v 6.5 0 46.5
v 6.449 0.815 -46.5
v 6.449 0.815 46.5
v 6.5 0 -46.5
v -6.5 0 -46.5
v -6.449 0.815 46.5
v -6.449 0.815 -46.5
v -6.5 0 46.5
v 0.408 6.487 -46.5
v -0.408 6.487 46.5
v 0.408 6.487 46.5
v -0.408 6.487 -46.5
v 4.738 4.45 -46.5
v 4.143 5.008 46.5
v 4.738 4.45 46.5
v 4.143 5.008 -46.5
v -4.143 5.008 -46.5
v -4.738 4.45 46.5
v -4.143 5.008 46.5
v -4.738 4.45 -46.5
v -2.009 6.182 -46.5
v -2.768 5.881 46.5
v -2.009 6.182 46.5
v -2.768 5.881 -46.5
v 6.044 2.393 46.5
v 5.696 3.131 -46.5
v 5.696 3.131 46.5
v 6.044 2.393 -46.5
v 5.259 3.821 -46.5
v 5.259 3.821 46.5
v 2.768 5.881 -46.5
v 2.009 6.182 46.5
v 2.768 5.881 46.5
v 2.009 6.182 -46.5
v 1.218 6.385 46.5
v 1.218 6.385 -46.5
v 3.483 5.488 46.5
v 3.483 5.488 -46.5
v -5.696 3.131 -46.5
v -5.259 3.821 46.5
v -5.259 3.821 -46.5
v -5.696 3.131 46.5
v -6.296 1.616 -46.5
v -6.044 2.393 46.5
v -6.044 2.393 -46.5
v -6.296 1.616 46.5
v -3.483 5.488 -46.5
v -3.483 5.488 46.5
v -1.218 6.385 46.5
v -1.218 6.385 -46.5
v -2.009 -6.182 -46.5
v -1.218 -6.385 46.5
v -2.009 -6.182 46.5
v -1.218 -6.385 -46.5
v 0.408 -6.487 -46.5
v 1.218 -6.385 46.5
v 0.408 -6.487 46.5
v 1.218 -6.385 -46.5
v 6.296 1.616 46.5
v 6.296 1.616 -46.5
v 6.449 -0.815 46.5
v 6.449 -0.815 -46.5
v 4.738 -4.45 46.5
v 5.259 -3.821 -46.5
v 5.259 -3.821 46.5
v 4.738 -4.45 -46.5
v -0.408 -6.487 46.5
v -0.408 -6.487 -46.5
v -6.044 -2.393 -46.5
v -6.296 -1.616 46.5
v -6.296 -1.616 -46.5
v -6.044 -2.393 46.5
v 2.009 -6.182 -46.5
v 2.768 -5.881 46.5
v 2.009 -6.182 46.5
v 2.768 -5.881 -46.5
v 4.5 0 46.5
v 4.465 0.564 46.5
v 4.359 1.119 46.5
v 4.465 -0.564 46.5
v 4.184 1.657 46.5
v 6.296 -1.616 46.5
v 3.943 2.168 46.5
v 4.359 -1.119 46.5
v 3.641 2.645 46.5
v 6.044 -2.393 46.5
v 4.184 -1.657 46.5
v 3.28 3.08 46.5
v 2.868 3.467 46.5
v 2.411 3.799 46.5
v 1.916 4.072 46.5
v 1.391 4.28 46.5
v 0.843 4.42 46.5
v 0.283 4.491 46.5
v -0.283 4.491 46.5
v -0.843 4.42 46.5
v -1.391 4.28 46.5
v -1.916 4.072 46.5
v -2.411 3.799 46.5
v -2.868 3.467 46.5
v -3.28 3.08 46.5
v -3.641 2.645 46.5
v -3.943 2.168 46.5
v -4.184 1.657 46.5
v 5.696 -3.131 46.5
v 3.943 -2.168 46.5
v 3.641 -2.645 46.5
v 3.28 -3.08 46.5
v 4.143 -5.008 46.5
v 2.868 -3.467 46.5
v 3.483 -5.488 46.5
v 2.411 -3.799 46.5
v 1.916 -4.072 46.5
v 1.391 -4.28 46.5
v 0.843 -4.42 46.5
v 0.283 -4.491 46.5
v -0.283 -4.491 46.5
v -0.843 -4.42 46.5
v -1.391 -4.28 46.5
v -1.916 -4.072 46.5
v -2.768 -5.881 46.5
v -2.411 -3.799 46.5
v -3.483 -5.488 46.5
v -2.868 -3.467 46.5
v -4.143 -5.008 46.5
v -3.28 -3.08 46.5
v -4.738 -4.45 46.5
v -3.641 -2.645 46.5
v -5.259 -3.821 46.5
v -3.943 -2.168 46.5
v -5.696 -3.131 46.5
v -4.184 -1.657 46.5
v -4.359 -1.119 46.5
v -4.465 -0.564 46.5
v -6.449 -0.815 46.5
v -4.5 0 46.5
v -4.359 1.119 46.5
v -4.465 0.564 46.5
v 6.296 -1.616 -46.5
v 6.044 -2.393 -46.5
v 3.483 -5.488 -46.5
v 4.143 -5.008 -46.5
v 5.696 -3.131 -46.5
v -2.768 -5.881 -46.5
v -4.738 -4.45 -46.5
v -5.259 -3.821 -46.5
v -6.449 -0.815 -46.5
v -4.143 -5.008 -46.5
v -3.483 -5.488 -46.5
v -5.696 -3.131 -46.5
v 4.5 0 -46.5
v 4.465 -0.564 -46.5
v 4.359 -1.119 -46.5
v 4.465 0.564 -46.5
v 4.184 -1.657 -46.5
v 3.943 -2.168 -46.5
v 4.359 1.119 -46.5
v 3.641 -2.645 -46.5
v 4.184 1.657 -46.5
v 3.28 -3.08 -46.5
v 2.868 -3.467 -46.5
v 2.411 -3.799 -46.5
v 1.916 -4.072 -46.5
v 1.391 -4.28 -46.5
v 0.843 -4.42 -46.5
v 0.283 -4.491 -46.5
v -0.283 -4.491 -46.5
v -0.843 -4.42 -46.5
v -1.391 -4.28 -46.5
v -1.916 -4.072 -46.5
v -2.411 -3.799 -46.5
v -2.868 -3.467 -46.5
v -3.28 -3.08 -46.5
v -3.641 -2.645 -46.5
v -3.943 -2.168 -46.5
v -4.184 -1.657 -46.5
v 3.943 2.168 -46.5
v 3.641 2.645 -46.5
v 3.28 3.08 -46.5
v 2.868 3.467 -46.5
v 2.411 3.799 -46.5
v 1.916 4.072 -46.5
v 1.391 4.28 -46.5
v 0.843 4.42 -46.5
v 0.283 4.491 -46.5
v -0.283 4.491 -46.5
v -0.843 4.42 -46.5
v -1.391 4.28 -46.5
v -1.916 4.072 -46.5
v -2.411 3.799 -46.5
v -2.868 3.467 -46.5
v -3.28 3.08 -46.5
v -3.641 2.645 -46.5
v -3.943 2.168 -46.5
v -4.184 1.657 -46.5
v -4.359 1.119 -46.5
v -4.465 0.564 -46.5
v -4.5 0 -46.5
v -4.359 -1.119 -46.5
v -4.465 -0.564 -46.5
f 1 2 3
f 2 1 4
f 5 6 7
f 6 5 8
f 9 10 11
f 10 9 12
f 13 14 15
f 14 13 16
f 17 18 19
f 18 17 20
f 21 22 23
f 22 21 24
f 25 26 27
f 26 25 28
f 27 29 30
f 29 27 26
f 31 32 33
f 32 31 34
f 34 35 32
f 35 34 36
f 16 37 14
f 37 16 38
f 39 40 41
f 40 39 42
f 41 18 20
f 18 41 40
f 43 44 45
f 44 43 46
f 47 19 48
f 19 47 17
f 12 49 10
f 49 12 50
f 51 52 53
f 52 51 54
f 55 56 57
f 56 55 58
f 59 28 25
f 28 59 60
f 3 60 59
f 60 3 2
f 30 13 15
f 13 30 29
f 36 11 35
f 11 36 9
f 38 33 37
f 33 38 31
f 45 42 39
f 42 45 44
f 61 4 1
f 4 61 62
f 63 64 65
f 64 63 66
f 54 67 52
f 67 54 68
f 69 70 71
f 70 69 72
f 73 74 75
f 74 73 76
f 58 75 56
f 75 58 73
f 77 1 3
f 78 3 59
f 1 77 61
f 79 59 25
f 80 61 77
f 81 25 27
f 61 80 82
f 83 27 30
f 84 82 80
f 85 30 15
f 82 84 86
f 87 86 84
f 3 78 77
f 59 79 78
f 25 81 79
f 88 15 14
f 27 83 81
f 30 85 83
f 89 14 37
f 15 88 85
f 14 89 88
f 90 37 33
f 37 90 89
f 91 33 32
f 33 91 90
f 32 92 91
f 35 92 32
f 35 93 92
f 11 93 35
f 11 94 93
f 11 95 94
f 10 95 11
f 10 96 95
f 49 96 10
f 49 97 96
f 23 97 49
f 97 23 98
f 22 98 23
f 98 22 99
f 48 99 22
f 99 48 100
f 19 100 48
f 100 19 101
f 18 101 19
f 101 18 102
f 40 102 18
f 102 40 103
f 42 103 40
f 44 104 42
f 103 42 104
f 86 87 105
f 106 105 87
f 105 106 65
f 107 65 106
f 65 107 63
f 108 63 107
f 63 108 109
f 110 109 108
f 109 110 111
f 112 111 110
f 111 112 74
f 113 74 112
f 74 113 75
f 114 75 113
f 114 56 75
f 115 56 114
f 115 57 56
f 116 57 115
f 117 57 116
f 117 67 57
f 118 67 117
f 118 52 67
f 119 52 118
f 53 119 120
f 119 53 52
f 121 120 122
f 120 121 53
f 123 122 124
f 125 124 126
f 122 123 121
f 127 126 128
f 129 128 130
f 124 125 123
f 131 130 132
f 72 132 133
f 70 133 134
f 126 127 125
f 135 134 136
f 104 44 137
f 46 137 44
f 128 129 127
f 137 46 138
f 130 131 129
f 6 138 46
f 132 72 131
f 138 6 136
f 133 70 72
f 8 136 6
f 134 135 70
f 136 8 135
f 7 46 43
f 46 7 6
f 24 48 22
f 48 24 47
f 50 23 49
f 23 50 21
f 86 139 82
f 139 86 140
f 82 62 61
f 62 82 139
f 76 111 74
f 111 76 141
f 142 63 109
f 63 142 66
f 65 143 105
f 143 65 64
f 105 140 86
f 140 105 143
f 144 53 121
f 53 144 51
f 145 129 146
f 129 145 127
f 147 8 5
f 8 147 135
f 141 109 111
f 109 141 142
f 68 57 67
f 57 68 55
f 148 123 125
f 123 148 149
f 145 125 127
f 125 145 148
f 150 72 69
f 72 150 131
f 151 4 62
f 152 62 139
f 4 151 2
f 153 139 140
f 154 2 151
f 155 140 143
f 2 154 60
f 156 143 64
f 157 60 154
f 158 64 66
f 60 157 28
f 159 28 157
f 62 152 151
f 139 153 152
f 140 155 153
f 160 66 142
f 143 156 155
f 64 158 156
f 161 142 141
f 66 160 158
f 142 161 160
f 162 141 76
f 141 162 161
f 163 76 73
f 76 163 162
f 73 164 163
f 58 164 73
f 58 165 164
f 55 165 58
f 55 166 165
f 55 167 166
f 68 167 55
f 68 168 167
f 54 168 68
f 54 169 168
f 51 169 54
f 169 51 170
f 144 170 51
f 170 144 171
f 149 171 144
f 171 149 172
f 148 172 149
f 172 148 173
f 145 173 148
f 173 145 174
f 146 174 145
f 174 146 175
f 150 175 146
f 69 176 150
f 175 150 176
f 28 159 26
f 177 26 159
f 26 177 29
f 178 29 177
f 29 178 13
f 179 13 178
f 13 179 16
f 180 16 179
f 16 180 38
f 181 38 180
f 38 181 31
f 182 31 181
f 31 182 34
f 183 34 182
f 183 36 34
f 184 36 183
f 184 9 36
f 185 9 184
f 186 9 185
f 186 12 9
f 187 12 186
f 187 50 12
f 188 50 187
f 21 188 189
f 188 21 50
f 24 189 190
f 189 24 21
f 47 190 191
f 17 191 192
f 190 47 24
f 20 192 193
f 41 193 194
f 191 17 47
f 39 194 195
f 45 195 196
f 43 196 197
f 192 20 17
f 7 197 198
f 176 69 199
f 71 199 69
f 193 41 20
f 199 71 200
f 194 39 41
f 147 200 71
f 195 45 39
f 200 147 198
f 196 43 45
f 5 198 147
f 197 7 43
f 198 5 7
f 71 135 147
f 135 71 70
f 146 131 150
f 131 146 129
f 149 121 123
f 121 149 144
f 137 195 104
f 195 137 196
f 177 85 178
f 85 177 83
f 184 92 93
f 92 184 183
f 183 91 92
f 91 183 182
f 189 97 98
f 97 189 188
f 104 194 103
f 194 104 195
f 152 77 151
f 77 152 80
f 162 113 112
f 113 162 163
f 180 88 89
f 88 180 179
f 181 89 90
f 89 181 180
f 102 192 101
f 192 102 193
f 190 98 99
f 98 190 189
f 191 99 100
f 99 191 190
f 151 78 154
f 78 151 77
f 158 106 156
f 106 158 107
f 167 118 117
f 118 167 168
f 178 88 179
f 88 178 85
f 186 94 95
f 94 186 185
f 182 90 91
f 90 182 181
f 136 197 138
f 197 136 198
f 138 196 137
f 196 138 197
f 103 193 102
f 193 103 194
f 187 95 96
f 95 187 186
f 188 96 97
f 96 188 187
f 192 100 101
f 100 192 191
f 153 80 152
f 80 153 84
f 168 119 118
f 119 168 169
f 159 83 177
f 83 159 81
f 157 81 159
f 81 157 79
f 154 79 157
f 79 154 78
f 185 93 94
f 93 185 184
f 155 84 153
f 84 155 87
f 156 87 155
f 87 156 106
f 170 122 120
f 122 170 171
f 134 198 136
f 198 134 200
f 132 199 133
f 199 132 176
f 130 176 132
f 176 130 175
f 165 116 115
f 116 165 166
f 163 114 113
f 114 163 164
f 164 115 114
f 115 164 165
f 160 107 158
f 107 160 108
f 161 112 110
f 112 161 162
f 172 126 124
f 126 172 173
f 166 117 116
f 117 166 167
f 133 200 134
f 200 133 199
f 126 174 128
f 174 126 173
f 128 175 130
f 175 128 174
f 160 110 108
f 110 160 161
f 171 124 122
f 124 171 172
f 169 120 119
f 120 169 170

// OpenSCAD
$fn = 50;


difference() {
	union() {
		translate(v = [0, 0, -46.5000000000]) {
			cylinder(h = 93, r = 6.5000000000);
		}
	}
	union() {
		translate(v = [0, 0, -100.0000000000]) {
			cylinder(h = 200, r = 4.5000000000);
		}
	}
}
